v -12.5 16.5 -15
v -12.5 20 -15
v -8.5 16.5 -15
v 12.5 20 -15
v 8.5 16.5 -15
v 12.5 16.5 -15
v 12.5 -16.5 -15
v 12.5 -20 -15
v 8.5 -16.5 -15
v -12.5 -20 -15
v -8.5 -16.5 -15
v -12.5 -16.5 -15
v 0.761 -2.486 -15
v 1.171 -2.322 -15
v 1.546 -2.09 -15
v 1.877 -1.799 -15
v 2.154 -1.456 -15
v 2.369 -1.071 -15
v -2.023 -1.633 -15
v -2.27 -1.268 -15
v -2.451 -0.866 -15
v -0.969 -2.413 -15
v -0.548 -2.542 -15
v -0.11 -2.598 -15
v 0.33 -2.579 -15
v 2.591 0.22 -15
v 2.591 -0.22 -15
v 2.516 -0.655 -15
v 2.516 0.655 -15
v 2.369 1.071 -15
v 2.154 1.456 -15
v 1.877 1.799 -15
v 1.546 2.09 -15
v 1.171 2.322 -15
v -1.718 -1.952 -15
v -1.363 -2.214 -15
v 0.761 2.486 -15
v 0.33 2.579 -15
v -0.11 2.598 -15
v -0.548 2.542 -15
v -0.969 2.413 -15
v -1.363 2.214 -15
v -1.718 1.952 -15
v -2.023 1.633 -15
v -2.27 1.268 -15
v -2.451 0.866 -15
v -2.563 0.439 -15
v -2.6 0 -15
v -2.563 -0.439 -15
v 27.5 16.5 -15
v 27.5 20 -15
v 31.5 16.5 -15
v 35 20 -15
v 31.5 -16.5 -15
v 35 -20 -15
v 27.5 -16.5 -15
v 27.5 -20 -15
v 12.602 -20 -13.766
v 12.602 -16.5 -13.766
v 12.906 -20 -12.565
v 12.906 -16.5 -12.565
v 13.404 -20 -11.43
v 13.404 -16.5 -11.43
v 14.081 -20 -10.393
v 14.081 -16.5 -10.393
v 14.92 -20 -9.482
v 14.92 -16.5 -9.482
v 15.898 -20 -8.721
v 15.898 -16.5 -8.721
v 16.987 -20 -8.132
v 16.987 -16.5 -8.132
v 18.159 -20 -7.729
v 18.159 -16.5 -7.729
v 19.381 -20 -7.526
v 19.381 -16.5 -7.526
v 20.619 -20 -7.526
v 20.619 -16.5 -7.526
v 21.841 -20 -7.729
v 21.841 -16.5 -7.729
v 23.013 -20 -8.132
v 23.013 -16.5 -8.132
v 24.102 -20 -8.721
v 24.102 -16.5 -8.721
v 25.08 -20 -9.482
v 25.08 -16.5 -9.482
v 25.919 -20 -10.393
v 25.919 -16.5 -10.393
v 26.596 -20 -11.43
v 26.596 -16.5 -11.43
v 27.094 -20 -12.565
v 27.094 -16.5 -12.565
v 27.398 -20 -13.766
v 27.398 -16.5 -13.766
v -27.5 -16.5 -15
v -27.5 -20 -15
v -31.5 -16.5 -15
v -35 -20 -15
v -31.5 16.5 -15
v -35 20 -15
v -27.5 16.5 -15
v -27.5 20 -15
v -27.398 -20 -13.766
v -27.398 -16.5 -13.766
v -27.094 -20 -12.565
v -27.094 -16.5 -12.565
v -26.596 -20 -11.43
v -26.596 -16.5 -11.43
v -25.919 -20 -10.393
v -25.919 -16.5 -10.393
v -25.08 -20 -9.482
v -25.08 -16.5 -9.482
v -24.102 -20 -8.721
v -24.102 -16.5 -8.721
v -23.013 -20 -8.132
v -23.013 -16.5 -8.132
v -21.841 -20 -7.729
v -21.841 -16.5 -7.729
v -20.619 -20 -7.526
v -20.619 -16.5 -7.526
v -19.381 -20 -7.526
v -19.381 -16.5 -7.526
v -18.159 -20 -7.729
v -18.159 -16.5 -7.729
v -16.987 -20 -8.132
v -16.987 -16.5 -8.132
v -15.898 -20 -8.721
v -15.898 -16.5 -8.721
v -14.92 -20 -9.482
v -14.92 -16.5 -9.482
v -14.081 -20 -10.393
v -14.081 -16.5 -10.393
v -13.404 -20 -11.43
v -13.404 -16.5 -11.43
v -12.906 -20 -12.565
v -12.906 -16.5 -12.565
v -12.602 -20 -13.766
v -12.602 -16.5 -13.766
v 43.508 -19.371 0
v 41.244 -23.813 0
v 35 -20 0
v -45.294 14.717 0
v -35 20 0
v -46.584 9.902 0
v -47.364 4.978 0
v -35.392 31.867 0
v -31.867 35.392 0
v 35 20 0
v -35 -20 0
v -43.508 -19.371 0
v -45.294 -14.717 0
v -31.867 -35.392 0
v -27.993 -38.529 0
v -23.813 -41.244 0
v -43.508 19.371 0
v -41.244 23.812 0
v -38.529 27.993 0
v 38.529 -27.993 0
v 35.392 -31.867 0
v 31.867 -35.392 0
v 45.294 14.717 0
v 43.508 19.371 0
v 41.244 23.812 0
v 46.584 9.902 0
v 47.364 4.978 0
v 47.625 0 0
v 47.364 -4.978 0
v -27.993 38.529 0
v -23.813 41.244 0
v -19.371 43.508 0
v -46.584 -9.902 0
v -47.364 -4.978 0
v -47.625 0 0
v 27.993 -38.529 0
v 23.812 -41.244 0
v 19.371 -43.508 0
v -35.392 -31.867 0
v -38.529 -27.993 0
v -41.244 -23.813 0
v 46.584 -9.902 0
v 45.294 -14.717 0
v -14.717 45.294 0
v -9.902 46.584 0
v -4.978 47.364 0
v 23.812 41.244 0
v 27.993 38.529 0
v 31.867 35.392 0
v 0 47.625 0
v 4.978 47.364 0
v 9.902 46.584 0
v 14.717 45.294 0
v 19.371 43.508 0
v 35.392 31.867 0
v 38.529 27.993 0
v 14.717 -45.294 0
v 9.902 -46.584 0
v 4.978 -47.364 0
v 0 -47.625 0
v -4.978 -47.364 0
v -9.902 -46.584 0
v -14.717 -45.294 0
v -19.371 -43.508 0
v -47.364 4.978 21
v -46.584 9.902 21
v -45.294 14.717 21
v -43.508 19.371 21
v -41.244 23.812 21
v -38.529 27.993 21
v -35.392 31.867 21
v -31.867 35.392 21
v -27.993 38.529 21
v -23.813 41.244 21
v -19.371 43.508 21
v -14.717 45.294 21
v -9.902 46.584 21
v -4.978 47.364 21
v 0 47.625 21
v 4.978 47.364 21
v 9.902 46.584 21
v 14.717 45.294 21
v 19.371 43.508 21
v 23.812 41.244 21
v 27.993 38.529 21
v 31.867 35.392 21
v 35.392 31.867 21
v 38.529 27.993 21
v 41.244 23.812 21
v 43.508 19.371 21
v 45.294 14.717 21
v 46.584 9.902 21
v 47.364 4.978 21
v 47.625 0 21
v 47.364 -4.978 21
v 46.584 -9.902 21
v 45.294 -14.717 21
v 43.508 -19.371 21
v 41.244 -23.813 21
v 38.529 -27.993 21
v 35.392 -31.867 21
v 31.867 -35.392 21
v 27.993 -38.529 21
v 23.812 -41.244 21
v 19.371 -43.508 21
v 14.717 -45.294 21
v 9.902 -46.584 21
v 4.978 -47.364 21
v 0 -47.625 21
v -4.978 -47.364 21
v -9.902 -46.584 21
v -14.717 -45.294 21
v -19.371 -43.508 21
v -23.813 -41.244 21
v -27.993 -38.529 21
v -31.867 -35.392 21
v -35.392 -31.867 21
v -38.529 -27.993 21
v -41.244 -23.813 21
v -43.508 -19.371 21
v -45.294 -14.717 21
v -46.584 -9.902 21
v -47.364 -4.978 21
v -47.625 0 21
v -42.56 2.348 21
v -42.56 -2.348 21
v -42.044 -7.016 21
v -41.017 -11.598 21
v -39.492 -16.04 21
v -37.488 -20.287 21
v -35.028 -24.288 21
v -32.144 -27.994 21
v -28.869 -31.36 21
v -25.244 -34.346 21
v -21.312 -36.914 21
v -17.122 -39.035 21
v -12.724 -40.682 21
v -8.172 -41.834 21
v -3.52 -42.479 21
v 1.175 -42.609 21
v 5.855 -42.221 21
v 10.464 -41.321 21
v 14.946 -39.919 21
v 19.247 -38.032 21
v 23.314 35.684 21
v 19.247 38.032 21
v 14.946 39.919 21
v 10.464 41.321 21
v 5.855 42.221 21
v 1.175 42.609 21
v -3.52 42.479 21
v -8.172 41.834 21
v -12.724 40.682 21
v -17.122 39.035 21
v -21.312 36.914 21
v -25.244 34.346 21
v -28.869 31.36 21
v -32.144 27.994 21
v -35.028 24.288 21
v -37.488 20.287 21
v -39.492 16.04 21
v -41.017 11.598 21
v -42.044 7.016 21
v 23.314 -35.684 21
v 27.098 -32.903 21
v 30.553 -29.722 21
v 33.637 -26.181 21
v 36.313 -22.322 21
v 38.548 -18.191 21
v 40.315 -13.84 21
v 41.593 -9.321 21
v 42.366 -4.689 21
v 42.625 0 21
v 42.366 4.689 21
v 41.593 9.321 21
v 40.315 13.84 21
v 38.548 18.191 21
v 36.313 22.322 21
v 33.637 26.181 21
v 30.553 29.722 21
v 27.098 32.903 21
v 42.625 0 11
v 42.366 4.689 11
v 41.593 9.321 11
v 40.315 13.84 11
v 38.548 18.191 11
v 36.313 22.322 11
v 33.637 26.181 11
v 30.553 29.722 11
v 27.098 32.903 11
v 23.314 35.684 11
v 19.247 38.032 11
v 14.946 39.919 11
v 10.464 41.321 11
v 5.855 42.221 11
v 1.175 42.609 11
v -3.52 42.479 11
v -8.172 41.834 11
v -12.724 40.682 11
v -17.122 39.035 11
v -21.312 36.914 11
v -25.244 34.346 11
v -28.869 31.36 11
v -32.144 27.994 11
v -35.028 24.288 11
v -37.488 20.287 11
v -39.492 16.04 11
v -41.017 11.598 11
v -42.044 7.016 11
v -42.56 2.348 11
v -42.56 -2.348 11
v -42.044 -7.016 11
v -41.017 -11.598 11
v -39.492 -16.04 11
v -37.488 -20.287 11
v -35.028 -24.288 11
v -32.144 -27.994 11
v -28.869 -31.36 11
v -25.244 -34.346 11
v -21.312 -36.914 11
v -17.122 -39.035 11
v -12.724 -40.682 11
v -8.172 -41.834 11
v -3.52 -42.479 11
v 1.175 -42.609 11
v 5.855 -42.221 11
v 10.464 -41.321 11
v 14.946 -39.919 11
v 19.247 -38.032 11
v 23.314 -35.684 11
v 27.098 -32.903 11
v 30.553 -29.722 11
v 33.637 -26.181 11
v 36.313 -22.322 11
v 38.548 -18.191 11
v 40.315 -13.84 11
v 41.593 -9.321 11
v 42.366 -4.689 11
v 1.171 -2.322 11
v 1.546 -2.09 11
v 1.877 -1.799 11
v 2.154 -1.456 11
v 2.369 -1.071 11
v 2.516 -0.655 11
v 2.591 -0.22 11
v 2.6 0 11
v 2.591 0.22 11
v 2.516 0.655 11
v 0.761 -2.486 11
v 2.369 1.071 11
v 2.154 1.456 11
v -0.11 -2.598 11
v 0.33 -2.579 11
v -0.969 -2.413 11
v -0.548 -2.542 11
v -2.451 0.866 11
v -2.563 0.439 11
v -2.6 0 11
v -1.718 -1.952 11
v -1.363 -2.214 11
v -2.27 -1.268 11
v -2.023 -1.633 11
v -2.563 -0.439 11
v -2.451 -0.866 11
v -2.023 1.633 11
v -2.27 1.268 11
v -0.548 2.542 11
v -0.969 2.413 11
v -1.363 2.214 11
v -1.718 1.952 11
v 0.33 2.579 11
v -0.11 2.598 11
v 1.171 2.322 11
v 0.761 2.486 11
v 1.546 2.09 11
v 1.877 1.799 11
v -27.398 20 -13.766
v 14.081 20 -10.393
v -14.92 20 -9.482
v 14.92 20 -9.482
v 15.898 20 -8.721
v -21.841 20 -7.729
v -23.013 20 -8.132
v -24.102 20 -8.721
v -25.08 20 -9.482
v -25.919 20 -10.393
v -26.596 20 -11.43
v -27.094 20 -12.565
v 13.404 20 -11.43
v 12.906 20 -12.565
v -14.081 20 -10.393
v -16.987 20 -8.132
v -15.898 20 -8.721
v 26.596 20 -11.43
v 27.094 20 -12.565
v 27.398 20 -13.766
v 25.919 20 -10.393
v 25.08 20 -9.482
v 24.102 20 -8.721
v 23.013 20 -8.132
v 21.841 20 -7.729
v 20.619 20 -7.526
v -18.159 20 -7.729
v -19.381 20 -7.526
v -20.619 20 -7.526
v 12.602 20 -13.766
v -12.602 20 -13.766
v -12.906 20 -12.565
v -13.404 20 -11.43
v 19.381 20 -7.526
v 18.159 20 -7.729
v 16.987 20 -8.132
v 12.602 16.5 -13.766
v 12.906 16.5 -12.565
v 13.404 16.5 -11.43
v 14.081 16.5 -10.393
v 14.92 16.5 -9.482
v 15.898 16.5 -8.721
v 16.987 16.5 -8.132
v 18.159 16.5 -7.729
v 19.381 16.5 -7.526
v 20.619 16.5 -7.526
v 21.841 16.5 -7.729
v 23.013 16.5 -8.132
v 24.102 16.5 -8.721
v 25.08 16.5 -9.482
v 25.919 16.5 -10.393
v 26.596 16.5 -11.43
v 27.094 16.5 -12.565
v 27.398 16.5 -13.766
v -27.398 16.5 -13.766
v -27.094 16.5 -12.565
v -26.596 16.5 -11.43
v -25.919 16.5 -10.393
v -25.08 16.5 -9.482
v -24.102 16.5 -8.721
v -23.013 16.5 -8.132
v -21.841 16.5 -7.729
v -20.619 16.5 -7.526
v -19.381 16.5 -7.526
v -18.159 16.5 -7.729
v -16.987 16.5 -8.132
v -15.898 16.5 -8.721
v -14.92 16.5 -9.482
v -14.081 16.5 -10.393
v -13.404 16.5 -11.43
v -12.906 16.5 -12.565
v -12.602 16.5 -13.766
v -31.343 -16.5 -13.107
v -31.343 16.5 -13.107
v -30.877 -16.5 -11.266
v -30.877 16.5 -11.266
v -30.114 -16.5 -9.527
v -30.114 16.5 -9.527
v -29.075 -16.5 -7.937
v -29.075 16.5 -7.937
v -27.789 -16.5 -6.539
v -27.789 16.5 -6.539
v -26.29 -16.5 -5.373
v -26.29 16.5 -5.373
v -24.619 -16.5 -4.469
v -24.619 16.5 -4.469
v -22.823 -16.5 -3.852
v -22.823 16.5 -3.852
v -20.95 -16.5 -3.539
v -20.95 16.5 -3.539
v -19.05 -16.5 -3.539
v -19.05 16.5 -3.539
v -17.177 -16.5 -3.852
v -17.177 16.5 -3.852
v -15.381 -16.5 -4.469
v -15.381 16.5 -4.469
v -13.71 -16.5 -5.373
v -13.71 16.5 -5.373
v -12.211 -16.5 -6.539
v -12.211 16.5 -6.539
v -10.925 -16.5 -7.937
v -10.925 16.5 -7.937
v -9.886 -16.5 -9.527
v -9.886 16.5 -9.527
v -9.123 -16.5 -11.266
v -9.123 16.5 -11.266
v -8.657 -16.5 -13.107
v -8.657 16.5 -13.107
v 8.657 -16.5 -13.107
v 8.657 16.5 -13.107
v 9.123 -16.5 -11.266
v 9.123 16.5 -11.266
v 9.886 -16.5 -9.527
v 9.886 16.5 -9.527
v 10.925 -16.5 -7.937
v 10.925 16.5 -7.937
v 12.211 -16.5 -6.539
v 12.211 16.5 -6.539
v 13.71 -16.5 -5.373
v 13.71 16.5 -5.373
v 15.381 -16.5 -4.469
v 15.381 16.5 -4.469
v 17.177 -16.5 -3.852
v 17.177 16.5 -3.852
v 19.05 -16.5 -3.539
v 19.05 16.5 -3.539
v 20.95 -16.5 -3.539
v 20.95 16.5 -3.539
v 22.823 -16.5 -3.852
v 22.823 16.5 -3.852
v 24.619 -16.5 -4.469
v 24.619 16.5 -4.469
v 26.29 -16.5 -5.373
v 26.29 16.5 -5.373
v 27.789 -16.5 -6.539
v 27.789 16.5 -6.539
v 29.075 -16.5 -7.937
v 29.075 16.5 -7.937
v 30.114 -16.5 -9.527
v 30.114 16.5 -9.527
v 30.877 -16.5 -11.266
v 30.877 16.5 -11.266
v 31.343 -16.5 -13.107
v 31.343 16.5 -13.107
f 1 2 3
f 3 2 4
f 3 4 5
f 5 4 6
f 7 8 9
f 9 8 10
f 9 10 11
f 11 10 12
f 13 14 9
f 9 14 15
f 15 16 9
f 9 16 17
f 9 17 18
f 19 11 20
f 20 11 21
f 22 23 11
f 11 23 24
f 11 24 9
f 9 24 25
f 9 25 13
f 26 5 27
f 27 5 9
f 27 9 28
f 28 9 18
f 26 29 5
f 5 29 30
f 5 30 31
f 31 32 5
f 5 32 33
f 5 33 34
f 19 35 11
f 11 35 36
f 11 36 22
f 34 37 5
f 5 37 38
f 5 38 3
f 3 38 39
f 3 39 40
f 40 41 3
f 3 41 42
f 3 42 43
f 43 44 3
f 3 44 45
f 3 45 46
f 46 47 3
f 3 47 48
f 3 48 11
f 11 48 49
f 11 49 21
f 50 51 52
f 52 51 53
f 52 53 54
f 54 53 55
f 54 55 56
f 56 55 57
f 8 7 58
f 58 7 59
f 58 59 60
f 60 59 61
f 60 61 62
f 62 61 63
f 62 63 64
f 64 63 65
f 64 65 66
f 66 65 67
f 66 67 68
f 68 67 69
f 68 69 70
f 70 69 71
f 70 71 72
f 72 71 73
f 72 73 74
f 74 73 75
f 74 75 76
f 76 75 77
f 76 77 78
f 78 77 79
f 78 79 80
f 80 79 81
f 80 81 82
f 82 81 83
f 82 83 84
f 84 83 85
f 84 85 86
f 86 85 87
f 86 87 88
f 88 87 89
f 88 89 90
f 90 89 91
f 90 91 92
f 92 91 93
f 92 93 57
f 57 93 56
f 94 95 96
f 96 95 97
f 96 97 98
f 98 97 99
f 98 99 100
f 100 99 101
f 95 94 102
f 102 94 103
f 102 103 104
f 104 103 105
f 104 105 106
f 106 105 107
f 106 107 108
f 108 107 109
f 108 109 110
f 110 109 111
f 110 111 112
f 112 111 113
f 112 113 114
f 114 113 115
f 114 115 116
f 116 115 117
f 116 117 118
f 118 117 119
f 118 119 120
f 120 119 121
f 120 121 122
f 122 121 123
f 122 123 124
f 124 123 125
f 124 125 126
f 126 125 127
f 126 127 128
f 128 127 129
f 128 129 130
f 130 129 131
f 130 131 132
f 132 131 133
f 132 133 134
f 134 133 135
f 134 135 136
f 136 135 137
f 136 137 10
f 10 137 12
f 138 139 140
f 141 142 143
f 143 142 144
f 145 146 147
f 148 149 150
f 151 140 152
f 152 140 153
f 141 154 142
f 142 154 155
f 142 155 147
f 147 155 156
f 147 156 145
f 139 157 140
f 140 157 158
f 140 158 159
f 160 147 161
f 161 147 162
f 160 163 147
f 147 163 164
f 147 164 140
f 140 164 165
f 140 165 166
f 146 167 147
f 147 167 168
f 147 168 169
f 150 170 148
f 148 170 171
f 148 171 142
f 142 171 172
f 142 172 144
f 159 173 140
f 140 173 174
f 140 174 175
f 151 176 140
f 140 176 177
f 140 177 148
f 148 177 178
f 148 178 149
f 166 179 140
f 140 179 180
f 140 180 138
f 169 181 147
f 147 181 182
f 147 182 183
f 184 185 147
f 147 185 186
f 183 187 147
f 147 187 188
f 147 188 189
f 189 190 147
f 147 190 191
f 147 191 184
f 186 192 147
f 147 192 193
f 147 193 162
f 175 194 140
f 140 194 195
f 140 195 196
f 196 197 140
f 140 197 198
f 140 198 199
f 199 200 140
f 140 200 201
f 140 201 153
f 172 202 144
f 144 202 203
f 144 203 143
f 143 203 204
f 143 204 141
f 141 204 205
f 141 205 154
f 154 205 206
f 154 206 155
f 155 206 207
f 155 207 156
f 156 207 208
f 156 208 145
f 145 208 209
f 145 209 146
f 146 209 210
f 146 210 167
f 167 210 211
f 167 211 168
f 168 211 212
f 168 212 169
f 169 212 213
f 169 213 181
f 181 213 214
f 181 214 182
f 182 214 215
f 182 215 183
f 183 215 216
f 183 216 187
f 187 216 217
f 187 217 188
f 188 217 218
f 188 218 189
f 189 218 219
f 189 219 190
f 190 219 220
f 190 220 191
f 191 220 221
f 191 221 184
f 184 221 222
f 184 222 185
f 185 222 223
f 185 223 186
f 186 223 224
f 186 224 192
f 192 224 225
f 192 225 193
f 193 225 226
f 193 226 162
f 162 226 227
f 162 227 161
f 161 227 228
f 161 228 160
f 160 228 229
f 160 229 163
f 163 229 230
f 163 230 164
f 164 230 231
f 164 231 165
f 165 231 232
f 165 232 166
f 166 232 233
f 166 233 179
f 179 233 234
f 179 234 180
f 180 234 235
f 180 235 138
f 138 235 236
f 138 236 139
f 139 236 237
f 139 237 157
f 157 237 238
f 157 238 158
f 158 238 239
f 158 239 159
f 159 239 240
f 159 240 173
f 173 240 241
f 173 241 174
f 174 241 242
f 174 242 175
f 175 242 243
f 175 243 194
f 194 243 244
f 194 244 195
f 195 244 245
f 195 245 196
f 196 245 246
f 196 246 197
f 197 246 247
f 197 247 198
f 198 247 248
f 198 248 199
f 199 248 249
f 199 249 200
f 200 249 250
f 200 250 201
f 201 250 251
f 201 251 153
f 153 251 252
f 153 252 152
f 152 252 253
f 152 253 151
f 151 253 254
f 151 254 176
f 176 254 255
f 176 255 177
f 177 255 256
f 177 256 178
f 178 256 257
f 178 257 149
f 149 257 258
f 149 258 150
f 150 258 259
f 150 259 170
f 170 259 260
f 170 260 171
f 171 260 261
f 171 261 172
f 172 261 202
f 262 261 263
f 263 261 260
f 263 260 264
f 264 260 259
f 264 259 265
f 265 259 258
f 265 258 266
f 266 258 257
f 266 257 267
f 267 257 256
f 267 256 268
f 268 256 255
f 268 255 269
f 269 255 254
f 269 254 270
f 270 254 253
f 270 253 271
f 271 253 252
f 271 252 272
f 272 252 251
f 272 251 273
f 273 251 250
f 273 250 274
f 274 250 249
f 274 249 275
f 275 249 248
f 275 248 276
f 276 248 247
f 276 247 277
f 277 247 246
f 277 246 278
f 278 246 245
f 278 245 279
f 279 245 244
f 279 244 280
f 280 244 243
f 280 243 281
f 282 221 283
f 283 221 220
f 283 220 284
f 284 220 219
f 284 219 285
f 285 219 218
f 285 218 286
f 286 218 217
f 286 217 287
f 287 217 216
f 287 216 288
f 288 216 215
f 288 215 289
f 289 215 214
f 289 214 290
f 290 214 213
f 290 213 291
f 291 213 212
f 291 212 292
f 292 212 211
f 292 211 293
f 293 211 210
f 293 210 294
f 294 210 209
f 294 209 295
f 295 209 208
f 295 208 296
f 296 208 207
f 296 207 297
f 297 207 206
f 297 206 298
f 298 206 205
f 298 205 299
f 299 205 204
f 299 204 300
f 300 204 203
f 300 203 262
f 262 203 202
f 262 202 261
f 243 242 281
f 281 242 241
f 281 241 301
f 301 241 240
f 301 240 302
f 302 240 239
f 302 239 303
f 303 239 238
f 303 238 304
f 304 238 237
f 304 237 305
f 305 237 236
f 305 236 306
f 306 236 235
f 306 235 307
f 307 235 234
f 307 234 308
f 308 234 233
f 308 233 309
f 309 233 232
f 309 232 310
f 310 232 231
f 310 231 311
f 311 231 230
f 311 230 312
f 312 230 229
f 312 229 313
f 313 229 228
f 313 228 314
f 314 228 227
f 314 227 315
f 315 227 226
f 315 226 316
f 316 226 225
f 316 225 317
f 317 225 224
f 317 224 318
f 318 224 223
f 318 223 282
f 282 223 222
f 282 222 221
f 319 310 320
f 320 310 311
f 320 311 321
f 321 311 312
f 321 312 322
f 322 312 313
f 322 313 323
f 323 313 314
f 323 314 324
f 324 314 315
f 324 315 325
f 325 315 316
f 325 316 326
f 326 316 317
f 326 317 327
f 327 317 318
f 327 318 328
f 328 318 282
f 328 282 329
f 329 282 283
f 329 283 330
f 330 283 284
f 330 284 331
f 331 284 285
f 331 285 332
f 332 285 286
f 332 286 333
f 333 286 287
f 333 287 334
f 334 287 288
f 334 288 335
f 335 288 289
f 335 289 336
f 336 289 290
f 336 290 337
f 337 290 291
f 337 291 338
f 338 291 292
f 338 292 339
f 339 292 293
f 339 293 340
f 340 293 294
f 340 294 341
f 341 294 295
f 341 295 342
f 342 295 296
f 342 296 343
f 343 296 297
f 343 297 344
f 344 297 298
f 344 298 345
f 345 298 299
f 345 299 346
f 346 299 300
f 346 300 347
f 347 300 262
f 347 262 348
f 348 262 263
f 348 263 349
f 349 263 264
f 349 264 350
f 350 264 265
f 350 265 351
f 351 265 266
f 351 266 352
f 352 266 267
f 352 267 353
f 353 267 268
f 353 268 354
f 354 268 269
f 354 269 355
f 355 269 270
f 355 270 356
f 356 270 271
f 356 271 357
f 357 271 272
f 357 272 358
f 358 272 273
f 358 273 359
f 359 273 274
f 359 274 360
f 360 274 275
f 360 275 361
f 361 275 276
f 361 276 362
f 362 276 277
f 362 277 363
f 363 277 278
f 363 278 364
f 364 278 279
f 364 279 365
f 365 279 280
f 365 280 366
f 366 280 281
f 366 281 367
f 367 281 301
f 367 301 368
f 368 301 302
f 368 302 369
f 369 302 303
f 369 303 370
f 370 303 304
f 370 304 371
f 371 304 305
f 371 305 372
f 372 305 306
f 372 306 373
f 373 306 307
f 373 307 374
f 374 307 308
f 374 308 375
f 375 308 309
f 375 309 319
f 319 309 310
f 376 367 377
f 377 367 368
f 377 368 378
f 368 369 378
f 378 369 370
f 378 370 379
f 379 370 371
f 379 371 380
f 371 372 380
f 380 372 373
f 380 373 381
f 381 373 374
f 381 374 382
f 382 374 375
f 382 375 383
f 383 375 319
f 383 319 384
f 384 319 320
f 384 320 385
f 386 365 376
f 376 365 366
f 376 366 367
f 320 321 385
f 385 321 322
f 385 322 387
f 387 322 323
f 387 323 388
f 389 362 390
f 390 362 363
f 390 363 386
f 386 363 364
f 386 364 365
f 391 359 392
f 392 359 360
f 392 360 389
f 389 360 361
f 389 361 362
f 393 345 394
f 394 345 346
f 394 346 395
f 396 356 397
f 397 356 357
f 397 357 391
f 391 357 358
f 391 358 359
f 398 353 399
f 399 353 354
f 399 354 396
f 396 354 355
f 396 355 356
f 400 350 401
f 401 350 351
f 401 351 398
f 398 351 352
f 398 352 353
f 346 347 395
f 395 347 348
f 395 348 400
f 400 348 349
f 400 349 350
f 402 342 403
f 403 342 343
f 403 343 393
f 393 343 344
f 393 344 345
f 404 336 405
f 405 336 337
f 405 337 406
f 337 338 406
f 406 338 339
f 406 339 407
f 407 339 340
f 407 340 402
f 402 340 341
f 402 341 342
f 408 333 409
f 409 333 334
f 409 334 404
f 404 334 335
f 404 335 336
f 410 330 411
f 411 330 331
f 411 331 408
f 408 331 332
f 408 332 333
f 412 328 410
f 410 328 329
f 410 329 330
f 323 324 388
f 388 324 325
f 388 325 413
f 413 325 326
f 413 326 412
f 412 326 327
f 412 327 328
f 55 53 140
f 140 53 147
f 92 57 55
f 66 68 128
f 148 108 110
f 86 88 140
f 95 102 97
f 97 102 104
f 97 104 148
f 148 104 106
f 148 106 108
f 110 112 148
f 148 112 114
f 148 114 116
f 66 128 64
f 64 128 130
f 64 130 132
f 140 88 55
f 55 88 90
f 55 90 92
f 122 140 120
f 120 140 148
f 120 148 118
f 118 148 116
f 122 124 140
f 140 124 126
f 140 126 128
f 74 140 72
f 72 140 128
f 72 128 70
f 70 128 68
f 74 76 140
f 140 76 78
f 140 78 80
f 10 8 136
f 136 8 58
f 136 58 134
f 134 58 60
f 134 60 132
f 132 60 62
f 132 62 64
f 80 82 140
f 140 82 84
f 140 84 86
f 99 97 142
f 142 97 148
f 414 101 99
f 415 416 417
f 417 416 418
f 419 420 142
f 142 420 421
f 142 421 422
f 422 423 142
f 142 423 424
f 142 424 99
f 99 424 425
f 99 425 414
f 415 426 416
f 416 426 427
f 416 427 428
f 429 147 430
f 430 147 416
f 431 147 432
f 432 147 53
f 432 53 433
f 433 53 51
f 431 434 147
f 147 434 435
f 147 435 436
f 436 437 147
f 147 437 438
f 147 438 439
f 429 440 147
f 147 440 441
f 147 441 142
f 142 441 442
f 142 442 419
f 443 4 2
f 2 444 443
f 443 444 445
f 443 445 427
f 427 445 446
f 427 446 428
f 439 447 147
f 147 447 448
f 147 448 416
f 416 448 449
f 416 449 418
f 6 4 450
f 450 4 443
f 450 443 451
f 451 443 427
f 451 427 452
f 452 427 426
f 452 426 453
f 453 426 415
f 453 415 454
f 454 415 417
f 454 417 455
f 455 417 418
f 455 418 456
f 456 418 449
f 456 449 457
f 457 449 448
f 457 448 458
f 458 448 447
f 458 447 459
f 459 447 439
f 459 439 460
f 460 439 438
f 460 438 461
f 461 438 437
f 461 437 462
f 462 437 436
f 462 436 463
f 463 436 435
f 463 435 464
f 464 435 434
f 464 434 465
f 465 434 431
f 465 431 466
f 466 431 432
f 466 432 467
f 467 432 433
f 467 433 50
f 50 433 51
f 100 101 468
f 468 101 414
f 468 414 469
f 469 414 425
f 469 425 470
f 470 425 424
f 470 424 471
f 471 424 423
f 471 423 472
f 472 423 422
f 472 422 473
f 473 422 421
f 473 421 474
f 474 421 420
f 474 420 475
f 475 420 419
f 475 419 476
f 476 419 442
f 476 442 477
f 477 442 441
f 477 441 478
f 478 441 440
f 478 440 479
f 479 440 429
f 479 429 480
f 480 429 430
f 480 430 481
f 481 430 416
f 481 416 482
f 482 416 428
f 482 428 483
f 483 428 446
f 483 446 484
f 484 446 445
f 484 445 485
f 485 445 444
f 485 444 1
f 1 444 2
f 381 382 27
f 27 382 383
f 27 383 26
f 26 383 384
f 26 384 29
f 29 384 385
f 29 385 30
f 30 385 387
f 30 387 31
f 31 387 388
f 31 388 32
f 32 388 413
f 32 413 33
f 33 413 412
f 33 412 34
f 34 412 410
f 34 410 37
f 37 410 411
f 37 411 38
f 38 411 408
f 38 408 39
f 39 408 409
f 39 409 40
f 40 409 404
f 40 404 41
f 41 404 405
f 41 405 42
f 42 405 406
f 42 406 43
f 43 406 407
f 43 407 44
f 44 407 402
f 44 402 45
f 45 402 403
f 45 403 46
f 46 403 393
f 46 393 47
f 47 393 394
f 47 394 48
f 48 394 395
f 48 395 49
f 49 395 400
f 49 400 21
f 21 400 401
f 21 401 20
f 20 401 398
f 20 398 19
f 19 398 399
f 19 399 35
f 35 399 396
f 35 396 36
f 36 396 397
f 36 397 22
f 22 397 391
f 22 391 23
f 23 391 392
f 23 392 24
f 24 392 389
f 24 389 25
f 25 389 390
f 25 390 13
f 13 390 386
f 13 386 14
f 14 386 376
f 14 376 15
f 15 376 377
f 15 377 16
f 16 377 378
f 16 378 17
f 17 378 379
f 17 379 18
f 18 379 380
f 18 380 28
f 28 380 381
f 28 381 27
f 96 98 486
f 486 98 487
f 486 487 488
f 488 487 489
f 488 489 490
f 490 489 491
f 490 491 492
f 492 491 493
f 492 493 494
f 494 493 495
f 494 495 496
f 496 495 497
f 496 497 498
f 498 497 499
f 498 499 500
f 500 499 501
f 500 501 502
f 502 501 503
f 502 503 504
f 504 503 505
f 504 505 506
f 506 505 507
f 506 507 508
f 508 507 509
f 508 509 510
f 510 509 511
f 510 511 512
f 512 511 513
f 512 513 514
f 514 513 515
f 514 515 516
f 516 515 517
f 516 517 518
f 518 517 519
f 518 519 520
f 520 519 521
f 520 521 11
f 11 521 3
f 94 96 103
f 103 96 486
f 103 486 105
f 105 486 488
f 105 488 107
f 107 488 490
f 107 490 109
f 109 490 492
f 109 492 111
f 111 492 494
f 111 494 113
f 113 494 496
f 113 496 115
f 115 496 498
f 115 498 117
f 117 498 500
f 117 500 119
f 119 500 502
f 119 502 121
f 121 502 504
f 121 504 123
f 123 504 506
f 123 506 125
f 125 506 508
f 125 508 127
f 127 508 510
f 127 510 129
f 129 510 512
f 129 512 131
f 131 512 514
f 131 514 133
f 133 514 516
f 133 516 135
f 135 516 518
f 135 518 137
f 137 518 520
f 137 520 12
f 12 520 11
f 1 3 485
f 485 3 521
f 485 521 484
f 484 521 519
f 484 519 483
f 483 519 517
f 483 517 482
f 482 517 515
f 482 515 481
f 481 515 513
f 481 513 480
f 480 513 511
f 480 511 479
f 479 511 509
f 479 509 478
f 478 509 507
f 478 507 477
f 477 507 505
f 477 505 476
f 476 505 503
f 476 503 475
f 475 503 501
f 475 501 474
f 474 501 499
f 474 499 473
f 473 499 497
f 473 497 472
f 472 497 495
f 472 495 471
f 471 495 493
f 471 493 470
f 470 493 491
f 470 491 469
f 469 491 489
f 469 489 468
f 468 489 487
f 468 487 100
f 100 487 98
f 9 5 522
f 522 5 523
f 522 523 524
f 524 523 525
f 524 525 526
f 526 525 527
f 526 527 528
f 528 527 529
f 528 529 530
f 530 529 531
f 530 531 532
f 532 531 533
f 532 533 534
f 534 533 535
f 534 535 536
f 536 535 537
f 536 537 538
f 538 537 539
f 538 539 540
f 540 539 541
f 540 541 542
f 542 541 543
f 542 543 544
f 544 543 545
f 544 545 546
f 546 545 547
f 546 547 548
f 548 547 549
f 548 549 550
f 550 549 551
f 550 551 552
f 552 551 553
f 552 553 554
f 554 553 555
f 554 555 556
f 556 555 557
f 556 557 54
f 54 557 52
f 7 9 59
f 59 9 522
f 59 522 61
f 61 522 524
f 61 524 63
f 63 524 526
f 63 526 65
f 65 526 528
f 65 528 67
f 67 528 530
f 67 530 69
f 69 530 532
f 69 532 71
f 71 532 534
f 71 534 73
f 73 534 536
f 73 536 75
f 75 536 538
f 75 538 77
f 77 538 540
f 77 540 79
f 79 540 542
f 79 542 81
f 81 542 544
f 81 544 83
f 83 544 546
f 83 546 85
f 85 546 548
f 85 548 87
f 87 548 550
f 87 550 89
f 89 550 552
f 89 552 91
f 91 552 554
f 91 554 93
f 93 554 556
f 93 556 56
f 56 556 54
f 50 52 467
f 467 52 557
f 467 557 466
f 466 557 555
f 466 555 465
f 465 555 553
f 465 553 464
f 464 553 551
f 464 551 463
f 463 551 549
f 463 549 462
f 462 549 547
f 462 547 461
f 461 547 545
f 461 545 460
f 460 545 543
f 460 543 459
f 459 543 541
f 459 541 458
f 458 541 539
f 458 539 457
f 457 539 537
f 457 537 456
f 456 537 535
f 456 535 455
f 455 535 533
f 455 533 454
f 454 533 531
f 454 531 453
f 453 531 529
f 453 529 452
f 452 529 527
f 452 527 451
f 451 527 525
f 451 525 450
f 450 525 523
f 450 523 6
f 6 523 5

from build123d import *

# Parameters (mm, degrees)
SKETCH1_R           = 47.625
BOSS_EXTRUDE1_DEPTH = 21
SKETCH2_R           = 42.625
CUT_EXTRUDE1_DEPTH  = 10
SKETCH3_W           = 70
SKETCH3_H           = 40
BOSS_EXTRUDE2_DEPTH = 15
SKETCH4_R           = 7.5
CUT_EXTRUDE2_DEPTH  = 86.336283315
SKETCH5_R           = 2.6
CUT_EXTRUDE3_DEPTH  = 77.36937377
SKETCH6_R           = 11.5
CUT_EXTRUDE4_DEPTH  = 16.5


with BuildPart() as part:
    # Sketch1 → Boss-Extrude1 (new body)
    with BuildSketch(Plane.XY):
        with Locations(Location((0, 0, 0), (0, 0, 180))):
            Circle(SKETCH1_R)
    extrude(amount=BOSS_EXTRUDE1_DEPTH)

    # Sketch2 → Cut-Extrude1 (cut)
    with BuildSketch(Plane.XY.offset(21)):
        Circle(SKETCH2_R)
    extrude(amount=-CUT_EXTRUDE1_DEPTH, mode=Mode.SUBTRACT)

    # Sketch3 → Boss-Extrude2 (add)
    with BuildSketch(Plane(origin=(0, 0, 0), x_dir=(-1, 0, 0), z_dir=(0, 0, -1))):
        Rectangle(SKETCH3_W, SKETCH3_H)
    extrude(amount=BOSS_EXTRUDE2_DEPTH)

    # Sketch4 → Cut-Extrude2 (cut, through all)
    with BuildSketch(Plane(origin=(0, 20, 0), x_dir=(-1, 0, 0), z_dir=(0, 1, 0))):
        with Locations((-20, -15)):
            Circle(SKETCH4_R)
        with Locations((20, -15)):
            Circle(SKETCH4_R)
    extrude(amount=-CUT_EXTRUDE2_DEPTH, mode=Mode.SUBTRACT)

    # Sketch5 → Cut-Extrude3 (cut, through all)
    with BuildSketch(Plane(origin=(0, 0, -15), x_dir=(-1, 0, 0), z_dir=(0, 0, -1))):
        Circle(SKETCH5_R)
    extrude(amount=-CUT_EXTRUDE3_DEPTH, mode=Mode.SUBTRACT)

    # Sketch6 → Cut-Extrude4 (cut, symmetric)
    with BuildSketch(Plane(origin=(0, 0, 0), x_dir=(1, 0, 0), z_dir=(0, 1, 0))):
        with Locations((-20, 15)):
            Circle(SKETCH6_R)
        with Locations((20, 15)):
            Circle(SKETCH6_R)
    extrude(amount=CUT_EXTRUDE4_DEPTH, both=True, mode=Mode.SUBTRACT)


solid = part.part
